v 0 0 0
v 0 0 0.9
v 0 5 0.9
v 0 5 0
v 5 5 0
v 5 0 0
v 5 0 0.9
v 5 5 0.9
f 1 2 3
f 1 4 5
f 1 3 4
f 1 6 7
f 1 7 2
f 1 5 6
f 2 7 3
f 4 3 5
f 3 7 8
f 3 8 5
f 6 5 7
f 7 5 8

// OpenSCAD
/* Warning, this is a very basic generator with a lot of approximation 
input data : [VQFN, RRB, 5x5x0.9mm, 20, , A, C04-21498A]
generated by com.zoubworld.electronics.cad.model3d.Basic
Date : Sun Feb 15 10:50:49 CET 2026
*/

//body
color("black")
translate([0,0,0])
cube([5.0,5.0,0.9], center=false);
